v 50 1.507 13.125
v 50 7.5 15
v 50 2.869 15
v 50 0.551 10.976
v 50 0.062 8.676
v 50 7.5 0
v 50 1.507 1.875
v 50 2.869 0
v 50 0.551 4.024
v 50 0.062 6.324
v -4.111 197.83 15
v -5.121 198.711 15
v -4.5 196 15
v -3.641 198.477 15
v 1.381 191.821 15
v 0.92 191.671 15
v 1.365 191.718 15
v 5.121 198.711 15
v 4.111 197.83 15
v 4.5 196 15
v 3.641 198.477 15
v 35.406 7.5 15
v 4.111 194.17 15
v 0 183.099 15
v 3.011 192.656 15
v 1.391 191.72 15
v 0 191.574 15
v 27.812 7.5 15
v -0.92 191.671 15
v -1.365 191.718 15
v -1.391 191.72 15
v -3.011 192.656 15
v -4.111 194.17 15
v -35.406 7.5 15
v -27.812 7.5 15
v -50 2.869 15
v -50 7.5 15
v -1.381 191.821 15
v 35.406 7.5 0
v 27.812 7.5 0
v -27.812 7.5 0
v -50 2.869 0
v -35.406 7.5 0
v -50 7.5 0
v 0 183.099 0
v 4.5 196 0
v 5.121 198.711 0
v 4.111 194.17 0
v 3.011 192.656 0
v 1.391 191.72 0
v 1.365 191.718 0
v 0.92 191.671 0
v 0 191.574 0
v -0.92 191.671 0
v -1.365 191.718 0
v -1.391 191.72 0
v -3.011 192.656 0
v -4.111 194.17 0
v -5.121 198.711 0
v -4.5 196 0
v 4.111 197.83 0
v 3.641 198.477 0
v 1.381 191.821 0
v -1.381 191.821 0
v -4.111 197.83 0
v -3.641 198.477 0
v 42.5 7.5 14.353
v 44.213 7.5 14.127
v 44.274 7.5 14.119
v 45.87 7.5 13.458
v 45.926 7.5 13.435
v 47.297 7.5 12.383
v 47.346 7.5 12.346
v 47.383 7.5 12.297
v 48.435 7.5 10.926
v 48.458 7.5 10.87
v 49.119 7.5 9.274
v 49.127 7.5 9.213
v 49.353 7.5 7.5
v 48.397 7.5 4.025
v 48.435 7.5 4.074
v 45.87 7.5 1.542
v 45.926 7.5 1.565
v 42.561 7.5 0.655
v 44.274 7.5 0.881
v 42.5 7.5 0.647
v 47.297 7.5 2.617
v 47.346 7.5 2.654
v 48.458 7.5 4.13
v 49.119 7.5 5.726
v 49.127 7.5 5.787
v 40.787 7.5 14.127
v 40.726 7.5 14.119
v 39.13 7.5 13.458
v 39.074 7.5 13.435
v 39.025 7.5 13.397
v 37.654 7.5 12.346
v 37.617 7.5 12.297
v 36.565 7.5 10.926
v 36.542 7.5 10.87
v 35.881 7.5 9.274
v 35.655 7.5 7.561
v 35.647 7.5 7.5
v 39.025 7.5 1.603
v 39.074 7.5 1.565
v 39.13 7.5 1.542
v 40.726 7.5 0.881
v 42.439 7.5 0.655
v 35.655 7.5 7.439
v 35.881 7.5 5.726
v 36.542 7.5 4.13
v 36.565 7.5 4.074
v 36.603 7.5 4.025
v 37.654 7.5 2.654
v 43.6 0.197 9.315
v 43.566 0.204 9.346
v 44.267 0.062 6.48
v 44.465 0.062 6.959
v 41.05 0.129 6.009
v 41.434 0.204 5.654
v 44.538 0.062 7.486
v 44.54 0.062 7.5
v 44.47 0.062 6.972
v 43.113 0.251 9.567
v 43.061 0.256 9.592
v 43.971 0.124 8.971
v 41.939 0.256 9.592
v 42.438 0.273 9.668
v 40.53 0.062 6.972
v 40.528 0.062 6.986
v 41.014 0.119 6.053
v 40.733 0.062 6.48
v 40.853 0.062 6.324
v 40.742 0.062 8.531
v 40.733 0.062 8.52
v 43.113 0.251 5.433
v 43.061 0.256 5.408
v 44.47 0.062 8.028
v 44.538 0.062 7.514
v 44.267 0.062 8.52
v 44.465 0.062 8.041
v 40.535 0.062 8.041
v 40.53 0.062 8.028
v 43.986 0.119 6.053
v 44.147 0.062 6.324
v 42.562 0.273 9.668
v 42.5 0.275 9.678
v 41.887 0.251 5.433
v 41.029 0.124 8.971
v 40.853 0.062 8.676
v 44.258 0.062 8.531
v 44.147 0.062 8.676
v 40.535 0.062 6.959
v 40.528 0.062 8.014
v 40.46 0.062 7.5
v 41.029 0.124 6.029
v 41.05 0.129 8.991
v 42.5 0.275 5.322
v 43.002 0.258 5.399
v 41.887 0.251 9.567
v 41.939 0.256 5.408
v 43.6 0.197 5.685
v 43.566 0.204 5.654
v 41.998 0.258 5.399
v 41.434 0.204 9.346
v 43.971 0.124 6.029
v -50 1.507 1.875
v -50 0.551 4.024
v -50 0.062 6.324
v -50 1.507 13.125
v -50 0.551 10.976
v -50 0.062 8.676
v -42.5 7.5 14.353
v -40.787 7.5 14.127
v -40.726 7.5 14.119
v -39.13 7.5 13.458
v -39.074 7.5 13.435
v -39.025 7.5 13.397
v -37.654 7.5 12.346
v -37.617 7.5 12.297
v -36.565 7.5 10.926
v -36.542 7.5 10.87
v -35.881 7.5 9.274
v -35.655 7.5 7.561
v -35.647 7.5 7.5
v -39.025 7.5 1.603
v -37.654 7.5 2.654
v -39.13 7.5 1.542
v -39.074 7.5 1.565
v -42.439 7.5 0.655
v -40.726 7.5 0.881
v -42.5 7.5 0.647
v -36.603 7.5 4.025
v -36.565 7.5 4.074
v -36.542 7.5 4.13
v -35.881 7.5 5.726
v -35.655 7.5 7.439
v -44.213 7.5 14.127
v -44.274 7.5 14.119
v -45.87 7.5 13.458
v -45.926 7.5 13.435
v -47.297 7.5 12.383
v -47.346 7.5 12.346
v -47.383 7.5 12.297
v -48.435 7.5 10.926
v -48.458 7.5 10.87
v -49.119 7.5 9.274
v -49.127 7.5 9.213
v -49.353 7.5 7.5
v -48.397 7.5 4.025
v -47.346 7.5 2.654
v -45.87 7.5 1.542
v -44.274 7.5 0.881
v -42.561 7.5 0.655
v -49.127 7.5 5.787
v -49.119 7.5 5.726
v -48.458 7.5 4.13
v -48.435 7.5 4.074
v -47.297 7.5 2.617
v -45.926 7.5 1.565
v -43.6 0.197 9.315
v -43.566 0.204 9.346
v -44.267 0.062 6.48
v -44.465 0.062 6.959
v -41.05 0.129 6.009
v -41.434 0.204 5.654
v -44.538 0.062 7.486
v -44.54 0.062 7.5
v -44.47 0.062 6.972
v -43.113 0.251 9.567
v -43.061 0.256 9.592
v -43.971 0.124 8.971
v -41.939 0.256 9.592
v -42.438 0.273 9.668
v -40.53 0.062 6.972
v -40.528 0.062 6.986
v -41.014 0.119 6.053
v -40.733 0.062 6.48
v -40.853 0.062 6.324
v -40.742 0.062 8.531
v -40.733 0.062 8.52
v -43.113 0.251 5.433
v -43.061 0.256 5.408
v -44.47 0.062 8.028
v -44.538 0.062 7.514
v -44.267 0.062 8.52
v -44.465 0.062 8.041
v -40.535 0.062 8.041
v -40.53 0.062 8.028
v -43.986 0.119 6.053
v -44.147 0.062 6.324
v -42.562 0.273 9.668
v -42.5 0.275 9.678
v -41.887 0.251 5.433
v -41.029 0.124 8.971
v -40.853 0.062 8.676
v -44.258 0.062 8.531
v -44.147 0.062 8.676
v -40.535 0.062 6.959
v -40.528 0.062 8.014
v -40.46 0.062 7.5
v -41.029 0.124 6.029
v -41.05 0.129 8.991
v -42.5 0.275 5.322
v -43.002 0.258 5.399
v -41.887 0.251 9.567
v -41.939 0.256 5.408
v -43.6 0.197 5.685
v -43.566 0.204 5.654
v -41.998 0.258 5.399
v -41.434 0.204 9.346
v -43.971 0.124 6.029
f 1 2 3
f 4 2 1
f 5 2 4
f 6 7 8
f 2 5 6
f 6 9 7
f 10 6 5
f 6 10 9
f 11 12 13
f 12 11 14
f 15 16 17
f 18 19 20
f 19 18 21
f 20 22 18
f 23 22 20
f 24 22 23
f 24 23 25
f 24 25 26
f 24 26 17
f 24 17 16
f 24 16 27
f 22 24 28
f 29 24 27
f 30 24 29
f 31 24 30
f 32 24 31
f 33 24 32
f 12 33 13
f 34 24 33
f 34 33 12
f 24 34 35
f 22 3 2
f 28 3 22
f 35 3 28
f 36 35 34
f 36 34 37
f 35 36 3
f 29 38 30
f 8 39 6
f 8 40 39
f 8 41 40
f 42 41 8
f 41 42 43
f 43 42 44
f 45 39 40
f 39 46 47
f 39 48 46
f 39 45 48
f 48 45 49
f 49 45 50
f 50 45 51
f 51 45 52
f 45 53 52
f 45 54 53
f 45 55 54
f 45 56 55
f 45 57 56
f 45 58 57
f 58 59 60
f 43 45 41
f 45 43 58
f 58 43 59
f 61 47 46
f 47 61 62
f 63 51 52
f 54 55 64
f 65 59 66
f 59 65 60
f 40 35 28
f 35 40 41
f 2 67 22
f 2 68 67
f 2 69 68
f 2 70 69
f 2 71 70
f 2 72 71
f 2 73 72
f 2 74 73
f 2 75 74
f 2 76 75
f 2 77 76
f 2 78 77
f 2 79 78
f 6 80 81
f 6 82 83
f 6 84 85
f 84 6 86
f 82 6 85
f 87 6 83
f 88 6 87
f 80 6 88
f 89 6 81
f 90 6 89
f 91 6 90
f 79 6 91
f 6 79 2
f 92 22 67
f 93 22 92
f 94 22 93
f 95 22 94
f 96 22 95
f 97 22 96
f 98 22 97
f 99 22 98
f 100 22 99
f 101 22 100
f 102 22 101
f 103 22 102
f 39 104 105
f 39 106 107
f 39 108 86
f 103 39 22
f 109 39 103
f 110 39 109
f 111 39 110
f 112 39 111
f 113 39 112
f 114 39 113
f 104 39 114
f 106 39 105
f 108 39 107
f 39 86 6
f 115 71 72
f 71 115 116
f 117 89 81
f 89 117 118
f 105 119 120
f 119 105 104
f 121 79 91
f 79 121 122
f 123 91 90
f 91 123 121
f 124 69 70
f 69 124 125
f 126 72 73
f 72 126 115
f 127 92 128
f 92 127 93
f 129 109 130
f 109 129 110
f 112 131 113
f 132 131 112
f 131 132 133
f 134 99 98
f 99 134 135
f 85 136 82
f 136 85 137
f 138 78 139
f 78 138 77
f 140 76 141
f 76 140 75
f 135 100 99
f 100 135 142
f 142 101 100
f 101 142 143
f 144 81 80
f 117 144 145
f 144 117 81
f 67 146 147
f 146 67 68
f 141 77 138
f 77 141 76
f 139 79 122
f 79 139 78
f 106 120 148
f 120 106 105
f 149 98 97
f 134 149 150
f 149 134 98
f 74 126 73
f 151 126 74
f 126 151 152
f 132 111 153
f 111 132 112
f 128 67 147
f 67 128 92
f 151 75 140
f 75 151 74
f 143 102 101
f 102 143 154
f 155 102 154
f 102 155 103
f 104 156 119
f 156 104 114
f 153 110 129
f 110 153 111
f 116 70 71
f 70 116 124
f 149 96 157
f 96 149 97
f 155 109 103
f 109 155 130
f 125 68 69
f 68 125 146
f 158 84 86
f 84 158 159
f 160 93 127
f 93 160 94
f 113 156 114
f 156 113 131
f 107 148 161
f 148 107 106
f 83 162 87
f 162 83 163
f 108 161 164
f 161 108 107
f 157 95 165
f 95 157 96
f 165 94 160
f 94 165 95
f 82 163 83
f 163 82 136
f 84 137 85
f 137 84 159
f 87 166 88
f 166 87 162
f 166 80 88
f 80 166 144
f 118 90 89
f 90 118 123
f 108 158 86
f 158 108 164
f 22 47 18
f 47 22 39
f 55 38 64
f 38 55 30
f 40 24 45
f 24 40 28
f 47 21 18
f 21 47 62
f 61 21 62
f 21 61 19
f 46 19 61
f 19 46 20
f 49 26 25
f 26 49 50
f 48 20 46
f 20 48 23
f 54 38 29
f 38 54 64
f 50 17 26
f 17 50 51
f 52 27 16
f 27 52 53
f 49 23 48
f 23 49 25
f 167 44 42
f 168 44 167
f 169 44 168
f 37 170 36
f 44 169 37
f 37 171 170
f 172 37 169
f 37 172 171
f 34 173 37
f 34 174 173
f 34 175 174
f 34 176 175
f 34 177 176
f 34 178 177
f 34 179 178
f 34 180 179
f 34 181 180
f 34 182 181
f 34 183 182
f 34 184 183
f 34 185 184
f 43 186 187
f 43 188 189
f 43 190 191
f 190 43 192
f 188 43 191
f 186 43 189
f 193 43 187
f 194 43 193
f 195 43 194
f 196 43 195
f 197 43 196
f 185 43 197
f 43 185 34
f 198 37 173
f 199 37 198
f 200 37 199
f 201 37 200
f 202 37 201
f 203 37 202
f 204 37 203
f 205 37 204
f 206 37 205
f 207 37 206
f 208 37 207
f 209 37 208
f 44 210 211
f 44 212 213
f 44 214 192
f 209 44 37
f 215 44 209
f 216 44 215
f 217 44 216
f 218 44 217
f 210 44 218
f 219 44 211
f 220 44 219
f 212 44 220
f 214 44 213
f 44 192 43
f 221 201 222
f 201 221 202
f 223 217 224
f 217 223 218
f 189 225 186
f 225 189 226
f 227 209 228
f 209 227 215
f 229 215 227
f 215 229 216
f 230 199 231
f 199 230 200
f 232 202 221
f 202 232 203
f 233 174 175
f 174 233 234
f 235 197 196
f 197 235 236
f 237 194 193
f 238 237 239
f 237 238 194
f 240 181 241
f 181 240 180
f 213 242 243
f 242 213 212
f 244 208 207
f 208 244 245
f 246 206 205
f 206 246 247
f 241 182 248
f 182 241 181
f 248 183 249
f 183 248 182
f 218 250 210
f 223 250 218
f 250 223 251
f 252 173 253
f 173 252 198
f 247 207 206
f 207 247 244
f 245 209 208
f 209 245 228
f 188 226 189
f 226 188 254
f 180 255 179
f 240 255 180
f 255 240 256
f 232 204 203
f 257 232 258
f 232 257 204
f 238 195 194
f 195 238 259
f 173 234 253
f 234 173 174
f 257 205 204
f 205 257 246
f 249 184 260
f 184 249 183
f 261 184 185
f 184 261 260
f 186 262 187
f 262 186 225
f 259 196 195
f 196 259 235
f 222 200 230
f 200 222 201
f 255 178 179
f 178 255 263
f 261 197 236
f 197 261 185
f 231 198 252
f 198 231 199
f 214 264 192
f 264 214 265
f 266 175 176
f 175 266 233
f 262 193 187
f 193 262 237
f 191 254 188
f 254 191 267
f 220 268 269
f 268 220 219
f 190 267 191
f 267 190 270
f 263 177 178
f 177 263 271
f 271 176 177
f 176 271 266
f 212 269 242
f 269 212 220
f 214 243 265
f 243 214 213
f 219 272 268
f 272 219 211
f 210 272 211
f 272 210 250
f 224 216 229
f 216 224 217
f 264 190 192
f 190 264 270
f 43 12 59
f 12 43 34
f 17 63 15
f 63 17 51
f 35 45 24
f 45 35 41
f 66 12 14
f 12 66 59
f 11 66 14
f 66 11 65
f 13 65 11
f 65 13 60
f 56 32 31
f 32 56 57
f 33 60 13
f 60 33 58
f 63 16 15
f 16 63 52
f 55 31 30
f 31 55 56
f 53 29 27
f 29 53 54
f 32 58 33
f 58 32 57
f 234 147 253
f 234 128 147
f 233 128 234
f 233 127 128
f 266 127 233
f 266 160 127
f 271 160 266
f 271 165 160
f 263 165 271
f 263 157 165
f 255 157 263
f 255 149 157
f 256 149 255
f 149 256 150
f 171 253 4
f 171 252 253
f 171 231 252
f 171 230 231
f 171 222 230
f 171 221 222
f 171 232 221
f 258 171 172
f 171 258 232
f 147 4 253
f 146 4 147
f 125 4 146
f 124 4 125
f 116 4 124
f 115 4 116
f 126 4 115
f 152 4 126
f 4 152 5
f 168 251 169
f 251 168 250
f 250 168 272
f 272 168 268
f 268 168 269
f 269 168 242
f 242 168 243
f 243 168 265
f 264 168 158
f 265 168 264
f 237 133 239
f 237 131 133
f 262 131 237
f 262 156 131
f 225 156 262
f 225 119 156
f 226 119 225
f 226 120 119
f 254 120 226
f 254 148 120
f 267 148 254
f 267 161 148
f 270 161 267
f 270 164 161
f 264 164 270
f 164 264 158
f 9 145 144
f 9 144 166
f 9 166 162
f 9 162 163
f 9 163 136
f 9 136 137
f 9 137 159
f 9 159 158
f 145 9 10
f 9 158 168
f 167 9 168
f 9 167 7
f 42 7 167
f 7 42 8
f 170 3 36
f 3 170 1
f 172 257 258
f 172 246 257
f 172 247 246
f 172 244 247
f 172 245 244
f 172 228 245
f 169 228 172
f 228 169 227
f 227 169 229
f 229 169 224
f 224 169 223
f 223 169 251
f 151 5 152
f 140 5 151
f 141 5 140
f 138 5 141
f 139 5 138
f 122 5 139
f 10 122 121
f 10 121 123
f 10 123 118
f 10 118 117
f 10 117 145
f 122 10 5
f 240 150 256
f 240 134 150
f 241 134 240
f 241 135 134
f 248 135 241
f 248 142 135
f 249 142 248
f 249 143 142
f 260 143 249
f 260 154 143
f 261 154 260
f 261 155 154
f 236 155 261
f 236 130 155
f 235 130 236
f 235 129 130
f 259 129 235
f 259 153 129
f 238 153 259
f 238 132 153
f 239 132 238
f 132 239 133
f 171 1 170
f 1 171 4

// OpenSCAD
// file: mjk.scad
module tx(x) { translate([x,0,0]) children(); }
module ty(y) { translate([0,y,0]) children(); }
module tz(z) { translate([0,0,z]) children(); }
module rotx(a=90) { rotate([a,0,0]) children(); }
module roty(a=90) { rotate([0,a,0]) children(); }
module rotz(a=90) { rotate([0,0,a]) children(); }
module mx() { mirror([1,0,0]) children(); }
module my() { mirror([0,1,0]) children(); }
module mz() { mirror([0,0,1]) children(); }
module cmx() { children(); mirror([1,0,0]) children(); }
module cmy() { children(); mirror([0,1,0]) children(); }
module cmz() { children(); mirror([0,0,1]) children(); }

module prism(dim)
{
  translate([0,dim.y,0])
  rotate([90,0,0])
  linear_extrude(dim.y) 
  polygon([[0, 0], [dim.x, 0], [0, dim.z]]);
}

module parallelogram(dim, shift_x)
{
  assert(shift_x < dim.x);
  translate([0,dim.y,0])
  rotate([90,0,0])
  linear_extrude(dim.y) 
  polygon([[0, 0], [dim.x-shift_x, 0], [dim.x, dim.z], [shift_x, dim.z]]);  
}

module tower(h, d)
{
  eps = 1.001;
  for (i=[1:len(h)-1])
    tz(h[i-1]) cylinder(h=eps*(h[i]-h[i-1]), d1=d[i-1], d2=d[i]);
}

module cubec(dim, chamfer=[0,0,0], center)
{
    tr = center ? [0,0,0] : [dim[0]/2, dim[1]/2, dim[2]/2];
    
    inn=dim- 2 * chamfer;
    assert(inn[0] > 0);
    assert(inn[1] > 0);
    assert(inn[2] > 0);
    translate(tr) 
    union()
    {
    hull()
        {
            cube([inn[0], inn[1], dim[2]], center=true);
            cube([inn[0], dim[1], inn[2]], center=true);
            cube([dim[0], inn[1], inn[2]], center=true);
        }
    }
}


module cubech2(dim, ch1=0, ch2=0, center=false)
{
    tr = center ? [0,0,0] : [dim[0]/2, dim[1]/2, dim[2]/2];
    
    inn=dim- 2 * [ch1, ch1, ch2];
    inn2=dim- 2 * [ch2, ch2, ch2];
    assert(inn[0] > 0);
    assert(inn[1] > 0);
    assert(inn[2] > 0);
    translate(tr) 
    union()
    {
    hull()
        {
            //cube([inn2[0], inn[1], dim[2]], center=true);
            cube([inn2[0], inn2[1], dim[2]], center=true);
            cube([inn[0], dim[1], inn[2]], center=true);
            cube([dim[0], inn[1], inn[2]], center=true);
        }
    }
}
module cubech(dim, edge=0, top=0, bottom=0, center=false)
{
    tr = center ? [0,0,0] : dim/2;
    
    inn=dim- [2*edge, 2*edge, top+bottom];
    //assert(inn[0] > 0);
    //assert(inn[1] > 0);
    //assert(inn[2] > 0);
    translate(tr) 
    union()
    {
    hull()
        {
            tz((bottom-top)/2) cube([dim.x, inn.y, inn.z], center=true);
            tz((bottom-top)/2) cube([inn.x, dim.y, inn.z], center=true);
            tz(bottom/2) cube([dim.x-2*top, dim.y-2*edge, dim.z-bottom], center=true);
            tz(bottom/2) cube([dim.x-2*edge, dim.y-2*top, dim.z-bottom], center=true);
            tz(-bottom/2) cube([dim.x-2*bottom, dim.y-2*edge, dim.z-top], center=true);
            tz(-bottom/2) cube([dim.x-2*edge, dim.y-2*bottom, dim.z-top], center=true);
        }
    }
}

//cubech2([20, 30, 10], 0, 1);

module cube_fillet(dim, fil=[0,0,0], center)
{
  cubec(dim, fil, center);
}


module cube_round(dim, r, center=false)
{
  tr = center ? [0,0,0] : [dim[0]/2, dim[1]/2, dim[2]/2];  
  inn = dim - [2 * r, 2*r, 0];
  assert(inn[0] > 0);
  assert(inn[1] > 0);
  assert(inn[2] > 0);
  translate(tr) 
  union()
  {
    cube([inn[0], dim[1], dim[2]], center=true);
    cube([dim[0], inn[1], dim[2]], center=true);
    for(x=[-1,1]) 
      for(y=[-1,1])
        translate([x*(dim.x/2-r), y*(dim.y/2-r),0])
          cylinder(dim[2], r, r, center=true);     
  }
}

module cube_round3(dim, r, center=false)
{
  tr = center ? [0,0,0] : [dim[0]/2, dim[1]/2, dim[2]/2];  
  inn = dim - 2 * r * [1,1,1];
  assert(inn[0] > 0);
  assert(inn[1] > 0);
  assert(inn[2] > 0);
  translate(tr) 
  hull()
  {
    cube([inn[0], inn[1], dim[2]], center=true);
    cube([inn[0], dim[1], inn[2]], center=true);
    cube([dim[0], inn[1], inn[2]], center=true);
    for(x=[-1,1]) 
      for(y=[-1,1])
        for(z=[-1,1])
          translate([x*(dim.x/2-r), y*(dim.y/2-r),z*(dim.z/2-r)])
            sphere(r);     
  }
}

module hull_tower()
{
  for(i=[1:$children-1])
  {
    hull()
    {
      children(i-1);
      children(i);
    }
  }
}


module hull_loop()
{
  for(i=[1:$children-1])
  {
    hull()
    {
      children(0);
      children(i);
    }
  }
}


module gewinde(h, d, s, slices=500, scale=1)
{
  turns = h / s;
  
  linear_extrude(height=h, center=false, twist=-turns * 360, slices=slices, scale=scale)
  translate([s/4,0,0]) circle(d/2-s/4);
}


module hex(h, w)
{
  translate([0,0,h/2])
  union()
    for (a=[0, 60, 120])
      rotate(a, [0,0,1])  
        cube([w, w*tan(30), h], center=true);
}

module ring_segment(h, r1, r2, a_start, a_stop, $fn=30)
{
  step = (a_stop-a_start-0.01) / $fn;
  l1 = [for (w =[a_start:step:a_stop]) [r1*sin(w), r1*cos(w)]];
  l2 = [for (w =[a_stop:-step:a_start]) [r2*sin(w), r2*cos(w)]];
  l = concat(l1, l2);
  linear_extrude(h, convexity=5)
  {
      polygon(l);
  }
}


module Schraube(m=4, h=30, mutter=5, kopf=5)
{
    //      0  1    2  3    4  5  6   7   8   9   10  11  12
    maul = [0, 2.5, 4, 5.5, 7, 8, 10, 11, 13, 15, 17, 18, 19];
    d_mutter = maul[m];
    r_loch = m  * 0.53;
    r_kopf = maul[m] * 0.54;
    union() 
    {
        translate([0, 0, h- mutter/2]) hex(2*mutter, d_mutter);
        cylinder(h, r_loch, r_loch);
        translate([0, 0, 0]) cylinder(kopf, r_kopf, r_kopf);
    }
}

//ty(20) WSL10();
//WSG10();

module WSG10(add=0, snap=0.6)
{
  color("darkgrey") tz(-9-add) difference()
  {
    tz(4.5+add/2) cube([20.4, 9., 9]+add*[1,1,1], true);
    cmx() tx(17.8/2+1) cube([2, 3.5, 6.4*2]+add*[1,1,1], true);
  }
  color("darkgreen") hull()
  {
    cube([20.4-2*snap+add, 9+add, 0.5], true);
    tz(3) cube([20.4+1+add, 9+add, 0.5], true);
  }
  color("gold") tz(-10) cube([12., 4.5, 4], true);
}

module WSL10(add=0, snap=0.6)
{
  color("lightgrey") tz(-14-add) difference()
  {
    tz(7+add/2) cube([21.4, 8.6, 14]+add*[1,1,1], true);
    ty(-4) cube([13, 2, 5.5]+add*[1,1,1], true);
  }
  color("darkgreen") hull()
  {
    cube([21.4-2*snap+add, 8.6+add, 0.5], true);
    tz(3) cube([21.4+1+add, 8.6+add, 0.5], true);
  }
}


module Getriebemotor()
{
  rotx(-90)
  {
    tx(64/2-11)cube_round([65, 23, 19], 3.5, center=true);
    color("white") cylinder(h=36.5, d=6.5, center=true);
    tx(11) cylinder(19/2+2, 2, 2);
    tx(30) ty(-3) cube([5, 6, 19/2+2]);
    tx(30) ty(-7) tz(-3-19/2) cube([23, 14, 5]);
    tz(-1) cube([32, 5.5, 3], true);
    
    tx(19.8) ty(+17.5/2) tz(-16) Schraube(m=3, h=32, mutter=5, kopf=3);
    tx(19.8) ty(-17.5/2) tz(-16) Schraube(m=3, h=32, mutter=5, kopf=3);
    //tx(60) ty(+11) tz(-16) Schraube(m=3, h=32, mutter=16, kopf=8);
    //tx(60) ty(-10) tz(-16) Schraube(m=3, h=32, mutter=16, kopf=8);  
  }
}
// main file
include <mjk.scad>

DIM=[100, 200, 15];

intersection()
{
  cmx()union()
  {
     difference()
    { cube([DIM.x/2, DIM.z/2, DIM.z]);
      tz(DIM.z/2) tx(DIM.x/2-DIM.z/2) rotx(-90) cylinder(d1=4, d2=DIM.z, h=DIM.z/2+1);
    }
    difference()
    {
      tx(DIM.x/2-1.4*DIM.z) rotz(9) cube([DIM.z/2, DIM.y, DIM.z]);
      ty(DIM.y-4) cylinder(d=9, h=DIM.z+2);
    }
  }
   union() {
    ty(DIM.z/2) tx(-DIM.x/2) cube(DIM);
    ty(DIM.z/2*1.5) tz(DIM.z/2) roty() cylinder(d=DIM.z*1.5, h=DIM.x, center=true);
  }
}
